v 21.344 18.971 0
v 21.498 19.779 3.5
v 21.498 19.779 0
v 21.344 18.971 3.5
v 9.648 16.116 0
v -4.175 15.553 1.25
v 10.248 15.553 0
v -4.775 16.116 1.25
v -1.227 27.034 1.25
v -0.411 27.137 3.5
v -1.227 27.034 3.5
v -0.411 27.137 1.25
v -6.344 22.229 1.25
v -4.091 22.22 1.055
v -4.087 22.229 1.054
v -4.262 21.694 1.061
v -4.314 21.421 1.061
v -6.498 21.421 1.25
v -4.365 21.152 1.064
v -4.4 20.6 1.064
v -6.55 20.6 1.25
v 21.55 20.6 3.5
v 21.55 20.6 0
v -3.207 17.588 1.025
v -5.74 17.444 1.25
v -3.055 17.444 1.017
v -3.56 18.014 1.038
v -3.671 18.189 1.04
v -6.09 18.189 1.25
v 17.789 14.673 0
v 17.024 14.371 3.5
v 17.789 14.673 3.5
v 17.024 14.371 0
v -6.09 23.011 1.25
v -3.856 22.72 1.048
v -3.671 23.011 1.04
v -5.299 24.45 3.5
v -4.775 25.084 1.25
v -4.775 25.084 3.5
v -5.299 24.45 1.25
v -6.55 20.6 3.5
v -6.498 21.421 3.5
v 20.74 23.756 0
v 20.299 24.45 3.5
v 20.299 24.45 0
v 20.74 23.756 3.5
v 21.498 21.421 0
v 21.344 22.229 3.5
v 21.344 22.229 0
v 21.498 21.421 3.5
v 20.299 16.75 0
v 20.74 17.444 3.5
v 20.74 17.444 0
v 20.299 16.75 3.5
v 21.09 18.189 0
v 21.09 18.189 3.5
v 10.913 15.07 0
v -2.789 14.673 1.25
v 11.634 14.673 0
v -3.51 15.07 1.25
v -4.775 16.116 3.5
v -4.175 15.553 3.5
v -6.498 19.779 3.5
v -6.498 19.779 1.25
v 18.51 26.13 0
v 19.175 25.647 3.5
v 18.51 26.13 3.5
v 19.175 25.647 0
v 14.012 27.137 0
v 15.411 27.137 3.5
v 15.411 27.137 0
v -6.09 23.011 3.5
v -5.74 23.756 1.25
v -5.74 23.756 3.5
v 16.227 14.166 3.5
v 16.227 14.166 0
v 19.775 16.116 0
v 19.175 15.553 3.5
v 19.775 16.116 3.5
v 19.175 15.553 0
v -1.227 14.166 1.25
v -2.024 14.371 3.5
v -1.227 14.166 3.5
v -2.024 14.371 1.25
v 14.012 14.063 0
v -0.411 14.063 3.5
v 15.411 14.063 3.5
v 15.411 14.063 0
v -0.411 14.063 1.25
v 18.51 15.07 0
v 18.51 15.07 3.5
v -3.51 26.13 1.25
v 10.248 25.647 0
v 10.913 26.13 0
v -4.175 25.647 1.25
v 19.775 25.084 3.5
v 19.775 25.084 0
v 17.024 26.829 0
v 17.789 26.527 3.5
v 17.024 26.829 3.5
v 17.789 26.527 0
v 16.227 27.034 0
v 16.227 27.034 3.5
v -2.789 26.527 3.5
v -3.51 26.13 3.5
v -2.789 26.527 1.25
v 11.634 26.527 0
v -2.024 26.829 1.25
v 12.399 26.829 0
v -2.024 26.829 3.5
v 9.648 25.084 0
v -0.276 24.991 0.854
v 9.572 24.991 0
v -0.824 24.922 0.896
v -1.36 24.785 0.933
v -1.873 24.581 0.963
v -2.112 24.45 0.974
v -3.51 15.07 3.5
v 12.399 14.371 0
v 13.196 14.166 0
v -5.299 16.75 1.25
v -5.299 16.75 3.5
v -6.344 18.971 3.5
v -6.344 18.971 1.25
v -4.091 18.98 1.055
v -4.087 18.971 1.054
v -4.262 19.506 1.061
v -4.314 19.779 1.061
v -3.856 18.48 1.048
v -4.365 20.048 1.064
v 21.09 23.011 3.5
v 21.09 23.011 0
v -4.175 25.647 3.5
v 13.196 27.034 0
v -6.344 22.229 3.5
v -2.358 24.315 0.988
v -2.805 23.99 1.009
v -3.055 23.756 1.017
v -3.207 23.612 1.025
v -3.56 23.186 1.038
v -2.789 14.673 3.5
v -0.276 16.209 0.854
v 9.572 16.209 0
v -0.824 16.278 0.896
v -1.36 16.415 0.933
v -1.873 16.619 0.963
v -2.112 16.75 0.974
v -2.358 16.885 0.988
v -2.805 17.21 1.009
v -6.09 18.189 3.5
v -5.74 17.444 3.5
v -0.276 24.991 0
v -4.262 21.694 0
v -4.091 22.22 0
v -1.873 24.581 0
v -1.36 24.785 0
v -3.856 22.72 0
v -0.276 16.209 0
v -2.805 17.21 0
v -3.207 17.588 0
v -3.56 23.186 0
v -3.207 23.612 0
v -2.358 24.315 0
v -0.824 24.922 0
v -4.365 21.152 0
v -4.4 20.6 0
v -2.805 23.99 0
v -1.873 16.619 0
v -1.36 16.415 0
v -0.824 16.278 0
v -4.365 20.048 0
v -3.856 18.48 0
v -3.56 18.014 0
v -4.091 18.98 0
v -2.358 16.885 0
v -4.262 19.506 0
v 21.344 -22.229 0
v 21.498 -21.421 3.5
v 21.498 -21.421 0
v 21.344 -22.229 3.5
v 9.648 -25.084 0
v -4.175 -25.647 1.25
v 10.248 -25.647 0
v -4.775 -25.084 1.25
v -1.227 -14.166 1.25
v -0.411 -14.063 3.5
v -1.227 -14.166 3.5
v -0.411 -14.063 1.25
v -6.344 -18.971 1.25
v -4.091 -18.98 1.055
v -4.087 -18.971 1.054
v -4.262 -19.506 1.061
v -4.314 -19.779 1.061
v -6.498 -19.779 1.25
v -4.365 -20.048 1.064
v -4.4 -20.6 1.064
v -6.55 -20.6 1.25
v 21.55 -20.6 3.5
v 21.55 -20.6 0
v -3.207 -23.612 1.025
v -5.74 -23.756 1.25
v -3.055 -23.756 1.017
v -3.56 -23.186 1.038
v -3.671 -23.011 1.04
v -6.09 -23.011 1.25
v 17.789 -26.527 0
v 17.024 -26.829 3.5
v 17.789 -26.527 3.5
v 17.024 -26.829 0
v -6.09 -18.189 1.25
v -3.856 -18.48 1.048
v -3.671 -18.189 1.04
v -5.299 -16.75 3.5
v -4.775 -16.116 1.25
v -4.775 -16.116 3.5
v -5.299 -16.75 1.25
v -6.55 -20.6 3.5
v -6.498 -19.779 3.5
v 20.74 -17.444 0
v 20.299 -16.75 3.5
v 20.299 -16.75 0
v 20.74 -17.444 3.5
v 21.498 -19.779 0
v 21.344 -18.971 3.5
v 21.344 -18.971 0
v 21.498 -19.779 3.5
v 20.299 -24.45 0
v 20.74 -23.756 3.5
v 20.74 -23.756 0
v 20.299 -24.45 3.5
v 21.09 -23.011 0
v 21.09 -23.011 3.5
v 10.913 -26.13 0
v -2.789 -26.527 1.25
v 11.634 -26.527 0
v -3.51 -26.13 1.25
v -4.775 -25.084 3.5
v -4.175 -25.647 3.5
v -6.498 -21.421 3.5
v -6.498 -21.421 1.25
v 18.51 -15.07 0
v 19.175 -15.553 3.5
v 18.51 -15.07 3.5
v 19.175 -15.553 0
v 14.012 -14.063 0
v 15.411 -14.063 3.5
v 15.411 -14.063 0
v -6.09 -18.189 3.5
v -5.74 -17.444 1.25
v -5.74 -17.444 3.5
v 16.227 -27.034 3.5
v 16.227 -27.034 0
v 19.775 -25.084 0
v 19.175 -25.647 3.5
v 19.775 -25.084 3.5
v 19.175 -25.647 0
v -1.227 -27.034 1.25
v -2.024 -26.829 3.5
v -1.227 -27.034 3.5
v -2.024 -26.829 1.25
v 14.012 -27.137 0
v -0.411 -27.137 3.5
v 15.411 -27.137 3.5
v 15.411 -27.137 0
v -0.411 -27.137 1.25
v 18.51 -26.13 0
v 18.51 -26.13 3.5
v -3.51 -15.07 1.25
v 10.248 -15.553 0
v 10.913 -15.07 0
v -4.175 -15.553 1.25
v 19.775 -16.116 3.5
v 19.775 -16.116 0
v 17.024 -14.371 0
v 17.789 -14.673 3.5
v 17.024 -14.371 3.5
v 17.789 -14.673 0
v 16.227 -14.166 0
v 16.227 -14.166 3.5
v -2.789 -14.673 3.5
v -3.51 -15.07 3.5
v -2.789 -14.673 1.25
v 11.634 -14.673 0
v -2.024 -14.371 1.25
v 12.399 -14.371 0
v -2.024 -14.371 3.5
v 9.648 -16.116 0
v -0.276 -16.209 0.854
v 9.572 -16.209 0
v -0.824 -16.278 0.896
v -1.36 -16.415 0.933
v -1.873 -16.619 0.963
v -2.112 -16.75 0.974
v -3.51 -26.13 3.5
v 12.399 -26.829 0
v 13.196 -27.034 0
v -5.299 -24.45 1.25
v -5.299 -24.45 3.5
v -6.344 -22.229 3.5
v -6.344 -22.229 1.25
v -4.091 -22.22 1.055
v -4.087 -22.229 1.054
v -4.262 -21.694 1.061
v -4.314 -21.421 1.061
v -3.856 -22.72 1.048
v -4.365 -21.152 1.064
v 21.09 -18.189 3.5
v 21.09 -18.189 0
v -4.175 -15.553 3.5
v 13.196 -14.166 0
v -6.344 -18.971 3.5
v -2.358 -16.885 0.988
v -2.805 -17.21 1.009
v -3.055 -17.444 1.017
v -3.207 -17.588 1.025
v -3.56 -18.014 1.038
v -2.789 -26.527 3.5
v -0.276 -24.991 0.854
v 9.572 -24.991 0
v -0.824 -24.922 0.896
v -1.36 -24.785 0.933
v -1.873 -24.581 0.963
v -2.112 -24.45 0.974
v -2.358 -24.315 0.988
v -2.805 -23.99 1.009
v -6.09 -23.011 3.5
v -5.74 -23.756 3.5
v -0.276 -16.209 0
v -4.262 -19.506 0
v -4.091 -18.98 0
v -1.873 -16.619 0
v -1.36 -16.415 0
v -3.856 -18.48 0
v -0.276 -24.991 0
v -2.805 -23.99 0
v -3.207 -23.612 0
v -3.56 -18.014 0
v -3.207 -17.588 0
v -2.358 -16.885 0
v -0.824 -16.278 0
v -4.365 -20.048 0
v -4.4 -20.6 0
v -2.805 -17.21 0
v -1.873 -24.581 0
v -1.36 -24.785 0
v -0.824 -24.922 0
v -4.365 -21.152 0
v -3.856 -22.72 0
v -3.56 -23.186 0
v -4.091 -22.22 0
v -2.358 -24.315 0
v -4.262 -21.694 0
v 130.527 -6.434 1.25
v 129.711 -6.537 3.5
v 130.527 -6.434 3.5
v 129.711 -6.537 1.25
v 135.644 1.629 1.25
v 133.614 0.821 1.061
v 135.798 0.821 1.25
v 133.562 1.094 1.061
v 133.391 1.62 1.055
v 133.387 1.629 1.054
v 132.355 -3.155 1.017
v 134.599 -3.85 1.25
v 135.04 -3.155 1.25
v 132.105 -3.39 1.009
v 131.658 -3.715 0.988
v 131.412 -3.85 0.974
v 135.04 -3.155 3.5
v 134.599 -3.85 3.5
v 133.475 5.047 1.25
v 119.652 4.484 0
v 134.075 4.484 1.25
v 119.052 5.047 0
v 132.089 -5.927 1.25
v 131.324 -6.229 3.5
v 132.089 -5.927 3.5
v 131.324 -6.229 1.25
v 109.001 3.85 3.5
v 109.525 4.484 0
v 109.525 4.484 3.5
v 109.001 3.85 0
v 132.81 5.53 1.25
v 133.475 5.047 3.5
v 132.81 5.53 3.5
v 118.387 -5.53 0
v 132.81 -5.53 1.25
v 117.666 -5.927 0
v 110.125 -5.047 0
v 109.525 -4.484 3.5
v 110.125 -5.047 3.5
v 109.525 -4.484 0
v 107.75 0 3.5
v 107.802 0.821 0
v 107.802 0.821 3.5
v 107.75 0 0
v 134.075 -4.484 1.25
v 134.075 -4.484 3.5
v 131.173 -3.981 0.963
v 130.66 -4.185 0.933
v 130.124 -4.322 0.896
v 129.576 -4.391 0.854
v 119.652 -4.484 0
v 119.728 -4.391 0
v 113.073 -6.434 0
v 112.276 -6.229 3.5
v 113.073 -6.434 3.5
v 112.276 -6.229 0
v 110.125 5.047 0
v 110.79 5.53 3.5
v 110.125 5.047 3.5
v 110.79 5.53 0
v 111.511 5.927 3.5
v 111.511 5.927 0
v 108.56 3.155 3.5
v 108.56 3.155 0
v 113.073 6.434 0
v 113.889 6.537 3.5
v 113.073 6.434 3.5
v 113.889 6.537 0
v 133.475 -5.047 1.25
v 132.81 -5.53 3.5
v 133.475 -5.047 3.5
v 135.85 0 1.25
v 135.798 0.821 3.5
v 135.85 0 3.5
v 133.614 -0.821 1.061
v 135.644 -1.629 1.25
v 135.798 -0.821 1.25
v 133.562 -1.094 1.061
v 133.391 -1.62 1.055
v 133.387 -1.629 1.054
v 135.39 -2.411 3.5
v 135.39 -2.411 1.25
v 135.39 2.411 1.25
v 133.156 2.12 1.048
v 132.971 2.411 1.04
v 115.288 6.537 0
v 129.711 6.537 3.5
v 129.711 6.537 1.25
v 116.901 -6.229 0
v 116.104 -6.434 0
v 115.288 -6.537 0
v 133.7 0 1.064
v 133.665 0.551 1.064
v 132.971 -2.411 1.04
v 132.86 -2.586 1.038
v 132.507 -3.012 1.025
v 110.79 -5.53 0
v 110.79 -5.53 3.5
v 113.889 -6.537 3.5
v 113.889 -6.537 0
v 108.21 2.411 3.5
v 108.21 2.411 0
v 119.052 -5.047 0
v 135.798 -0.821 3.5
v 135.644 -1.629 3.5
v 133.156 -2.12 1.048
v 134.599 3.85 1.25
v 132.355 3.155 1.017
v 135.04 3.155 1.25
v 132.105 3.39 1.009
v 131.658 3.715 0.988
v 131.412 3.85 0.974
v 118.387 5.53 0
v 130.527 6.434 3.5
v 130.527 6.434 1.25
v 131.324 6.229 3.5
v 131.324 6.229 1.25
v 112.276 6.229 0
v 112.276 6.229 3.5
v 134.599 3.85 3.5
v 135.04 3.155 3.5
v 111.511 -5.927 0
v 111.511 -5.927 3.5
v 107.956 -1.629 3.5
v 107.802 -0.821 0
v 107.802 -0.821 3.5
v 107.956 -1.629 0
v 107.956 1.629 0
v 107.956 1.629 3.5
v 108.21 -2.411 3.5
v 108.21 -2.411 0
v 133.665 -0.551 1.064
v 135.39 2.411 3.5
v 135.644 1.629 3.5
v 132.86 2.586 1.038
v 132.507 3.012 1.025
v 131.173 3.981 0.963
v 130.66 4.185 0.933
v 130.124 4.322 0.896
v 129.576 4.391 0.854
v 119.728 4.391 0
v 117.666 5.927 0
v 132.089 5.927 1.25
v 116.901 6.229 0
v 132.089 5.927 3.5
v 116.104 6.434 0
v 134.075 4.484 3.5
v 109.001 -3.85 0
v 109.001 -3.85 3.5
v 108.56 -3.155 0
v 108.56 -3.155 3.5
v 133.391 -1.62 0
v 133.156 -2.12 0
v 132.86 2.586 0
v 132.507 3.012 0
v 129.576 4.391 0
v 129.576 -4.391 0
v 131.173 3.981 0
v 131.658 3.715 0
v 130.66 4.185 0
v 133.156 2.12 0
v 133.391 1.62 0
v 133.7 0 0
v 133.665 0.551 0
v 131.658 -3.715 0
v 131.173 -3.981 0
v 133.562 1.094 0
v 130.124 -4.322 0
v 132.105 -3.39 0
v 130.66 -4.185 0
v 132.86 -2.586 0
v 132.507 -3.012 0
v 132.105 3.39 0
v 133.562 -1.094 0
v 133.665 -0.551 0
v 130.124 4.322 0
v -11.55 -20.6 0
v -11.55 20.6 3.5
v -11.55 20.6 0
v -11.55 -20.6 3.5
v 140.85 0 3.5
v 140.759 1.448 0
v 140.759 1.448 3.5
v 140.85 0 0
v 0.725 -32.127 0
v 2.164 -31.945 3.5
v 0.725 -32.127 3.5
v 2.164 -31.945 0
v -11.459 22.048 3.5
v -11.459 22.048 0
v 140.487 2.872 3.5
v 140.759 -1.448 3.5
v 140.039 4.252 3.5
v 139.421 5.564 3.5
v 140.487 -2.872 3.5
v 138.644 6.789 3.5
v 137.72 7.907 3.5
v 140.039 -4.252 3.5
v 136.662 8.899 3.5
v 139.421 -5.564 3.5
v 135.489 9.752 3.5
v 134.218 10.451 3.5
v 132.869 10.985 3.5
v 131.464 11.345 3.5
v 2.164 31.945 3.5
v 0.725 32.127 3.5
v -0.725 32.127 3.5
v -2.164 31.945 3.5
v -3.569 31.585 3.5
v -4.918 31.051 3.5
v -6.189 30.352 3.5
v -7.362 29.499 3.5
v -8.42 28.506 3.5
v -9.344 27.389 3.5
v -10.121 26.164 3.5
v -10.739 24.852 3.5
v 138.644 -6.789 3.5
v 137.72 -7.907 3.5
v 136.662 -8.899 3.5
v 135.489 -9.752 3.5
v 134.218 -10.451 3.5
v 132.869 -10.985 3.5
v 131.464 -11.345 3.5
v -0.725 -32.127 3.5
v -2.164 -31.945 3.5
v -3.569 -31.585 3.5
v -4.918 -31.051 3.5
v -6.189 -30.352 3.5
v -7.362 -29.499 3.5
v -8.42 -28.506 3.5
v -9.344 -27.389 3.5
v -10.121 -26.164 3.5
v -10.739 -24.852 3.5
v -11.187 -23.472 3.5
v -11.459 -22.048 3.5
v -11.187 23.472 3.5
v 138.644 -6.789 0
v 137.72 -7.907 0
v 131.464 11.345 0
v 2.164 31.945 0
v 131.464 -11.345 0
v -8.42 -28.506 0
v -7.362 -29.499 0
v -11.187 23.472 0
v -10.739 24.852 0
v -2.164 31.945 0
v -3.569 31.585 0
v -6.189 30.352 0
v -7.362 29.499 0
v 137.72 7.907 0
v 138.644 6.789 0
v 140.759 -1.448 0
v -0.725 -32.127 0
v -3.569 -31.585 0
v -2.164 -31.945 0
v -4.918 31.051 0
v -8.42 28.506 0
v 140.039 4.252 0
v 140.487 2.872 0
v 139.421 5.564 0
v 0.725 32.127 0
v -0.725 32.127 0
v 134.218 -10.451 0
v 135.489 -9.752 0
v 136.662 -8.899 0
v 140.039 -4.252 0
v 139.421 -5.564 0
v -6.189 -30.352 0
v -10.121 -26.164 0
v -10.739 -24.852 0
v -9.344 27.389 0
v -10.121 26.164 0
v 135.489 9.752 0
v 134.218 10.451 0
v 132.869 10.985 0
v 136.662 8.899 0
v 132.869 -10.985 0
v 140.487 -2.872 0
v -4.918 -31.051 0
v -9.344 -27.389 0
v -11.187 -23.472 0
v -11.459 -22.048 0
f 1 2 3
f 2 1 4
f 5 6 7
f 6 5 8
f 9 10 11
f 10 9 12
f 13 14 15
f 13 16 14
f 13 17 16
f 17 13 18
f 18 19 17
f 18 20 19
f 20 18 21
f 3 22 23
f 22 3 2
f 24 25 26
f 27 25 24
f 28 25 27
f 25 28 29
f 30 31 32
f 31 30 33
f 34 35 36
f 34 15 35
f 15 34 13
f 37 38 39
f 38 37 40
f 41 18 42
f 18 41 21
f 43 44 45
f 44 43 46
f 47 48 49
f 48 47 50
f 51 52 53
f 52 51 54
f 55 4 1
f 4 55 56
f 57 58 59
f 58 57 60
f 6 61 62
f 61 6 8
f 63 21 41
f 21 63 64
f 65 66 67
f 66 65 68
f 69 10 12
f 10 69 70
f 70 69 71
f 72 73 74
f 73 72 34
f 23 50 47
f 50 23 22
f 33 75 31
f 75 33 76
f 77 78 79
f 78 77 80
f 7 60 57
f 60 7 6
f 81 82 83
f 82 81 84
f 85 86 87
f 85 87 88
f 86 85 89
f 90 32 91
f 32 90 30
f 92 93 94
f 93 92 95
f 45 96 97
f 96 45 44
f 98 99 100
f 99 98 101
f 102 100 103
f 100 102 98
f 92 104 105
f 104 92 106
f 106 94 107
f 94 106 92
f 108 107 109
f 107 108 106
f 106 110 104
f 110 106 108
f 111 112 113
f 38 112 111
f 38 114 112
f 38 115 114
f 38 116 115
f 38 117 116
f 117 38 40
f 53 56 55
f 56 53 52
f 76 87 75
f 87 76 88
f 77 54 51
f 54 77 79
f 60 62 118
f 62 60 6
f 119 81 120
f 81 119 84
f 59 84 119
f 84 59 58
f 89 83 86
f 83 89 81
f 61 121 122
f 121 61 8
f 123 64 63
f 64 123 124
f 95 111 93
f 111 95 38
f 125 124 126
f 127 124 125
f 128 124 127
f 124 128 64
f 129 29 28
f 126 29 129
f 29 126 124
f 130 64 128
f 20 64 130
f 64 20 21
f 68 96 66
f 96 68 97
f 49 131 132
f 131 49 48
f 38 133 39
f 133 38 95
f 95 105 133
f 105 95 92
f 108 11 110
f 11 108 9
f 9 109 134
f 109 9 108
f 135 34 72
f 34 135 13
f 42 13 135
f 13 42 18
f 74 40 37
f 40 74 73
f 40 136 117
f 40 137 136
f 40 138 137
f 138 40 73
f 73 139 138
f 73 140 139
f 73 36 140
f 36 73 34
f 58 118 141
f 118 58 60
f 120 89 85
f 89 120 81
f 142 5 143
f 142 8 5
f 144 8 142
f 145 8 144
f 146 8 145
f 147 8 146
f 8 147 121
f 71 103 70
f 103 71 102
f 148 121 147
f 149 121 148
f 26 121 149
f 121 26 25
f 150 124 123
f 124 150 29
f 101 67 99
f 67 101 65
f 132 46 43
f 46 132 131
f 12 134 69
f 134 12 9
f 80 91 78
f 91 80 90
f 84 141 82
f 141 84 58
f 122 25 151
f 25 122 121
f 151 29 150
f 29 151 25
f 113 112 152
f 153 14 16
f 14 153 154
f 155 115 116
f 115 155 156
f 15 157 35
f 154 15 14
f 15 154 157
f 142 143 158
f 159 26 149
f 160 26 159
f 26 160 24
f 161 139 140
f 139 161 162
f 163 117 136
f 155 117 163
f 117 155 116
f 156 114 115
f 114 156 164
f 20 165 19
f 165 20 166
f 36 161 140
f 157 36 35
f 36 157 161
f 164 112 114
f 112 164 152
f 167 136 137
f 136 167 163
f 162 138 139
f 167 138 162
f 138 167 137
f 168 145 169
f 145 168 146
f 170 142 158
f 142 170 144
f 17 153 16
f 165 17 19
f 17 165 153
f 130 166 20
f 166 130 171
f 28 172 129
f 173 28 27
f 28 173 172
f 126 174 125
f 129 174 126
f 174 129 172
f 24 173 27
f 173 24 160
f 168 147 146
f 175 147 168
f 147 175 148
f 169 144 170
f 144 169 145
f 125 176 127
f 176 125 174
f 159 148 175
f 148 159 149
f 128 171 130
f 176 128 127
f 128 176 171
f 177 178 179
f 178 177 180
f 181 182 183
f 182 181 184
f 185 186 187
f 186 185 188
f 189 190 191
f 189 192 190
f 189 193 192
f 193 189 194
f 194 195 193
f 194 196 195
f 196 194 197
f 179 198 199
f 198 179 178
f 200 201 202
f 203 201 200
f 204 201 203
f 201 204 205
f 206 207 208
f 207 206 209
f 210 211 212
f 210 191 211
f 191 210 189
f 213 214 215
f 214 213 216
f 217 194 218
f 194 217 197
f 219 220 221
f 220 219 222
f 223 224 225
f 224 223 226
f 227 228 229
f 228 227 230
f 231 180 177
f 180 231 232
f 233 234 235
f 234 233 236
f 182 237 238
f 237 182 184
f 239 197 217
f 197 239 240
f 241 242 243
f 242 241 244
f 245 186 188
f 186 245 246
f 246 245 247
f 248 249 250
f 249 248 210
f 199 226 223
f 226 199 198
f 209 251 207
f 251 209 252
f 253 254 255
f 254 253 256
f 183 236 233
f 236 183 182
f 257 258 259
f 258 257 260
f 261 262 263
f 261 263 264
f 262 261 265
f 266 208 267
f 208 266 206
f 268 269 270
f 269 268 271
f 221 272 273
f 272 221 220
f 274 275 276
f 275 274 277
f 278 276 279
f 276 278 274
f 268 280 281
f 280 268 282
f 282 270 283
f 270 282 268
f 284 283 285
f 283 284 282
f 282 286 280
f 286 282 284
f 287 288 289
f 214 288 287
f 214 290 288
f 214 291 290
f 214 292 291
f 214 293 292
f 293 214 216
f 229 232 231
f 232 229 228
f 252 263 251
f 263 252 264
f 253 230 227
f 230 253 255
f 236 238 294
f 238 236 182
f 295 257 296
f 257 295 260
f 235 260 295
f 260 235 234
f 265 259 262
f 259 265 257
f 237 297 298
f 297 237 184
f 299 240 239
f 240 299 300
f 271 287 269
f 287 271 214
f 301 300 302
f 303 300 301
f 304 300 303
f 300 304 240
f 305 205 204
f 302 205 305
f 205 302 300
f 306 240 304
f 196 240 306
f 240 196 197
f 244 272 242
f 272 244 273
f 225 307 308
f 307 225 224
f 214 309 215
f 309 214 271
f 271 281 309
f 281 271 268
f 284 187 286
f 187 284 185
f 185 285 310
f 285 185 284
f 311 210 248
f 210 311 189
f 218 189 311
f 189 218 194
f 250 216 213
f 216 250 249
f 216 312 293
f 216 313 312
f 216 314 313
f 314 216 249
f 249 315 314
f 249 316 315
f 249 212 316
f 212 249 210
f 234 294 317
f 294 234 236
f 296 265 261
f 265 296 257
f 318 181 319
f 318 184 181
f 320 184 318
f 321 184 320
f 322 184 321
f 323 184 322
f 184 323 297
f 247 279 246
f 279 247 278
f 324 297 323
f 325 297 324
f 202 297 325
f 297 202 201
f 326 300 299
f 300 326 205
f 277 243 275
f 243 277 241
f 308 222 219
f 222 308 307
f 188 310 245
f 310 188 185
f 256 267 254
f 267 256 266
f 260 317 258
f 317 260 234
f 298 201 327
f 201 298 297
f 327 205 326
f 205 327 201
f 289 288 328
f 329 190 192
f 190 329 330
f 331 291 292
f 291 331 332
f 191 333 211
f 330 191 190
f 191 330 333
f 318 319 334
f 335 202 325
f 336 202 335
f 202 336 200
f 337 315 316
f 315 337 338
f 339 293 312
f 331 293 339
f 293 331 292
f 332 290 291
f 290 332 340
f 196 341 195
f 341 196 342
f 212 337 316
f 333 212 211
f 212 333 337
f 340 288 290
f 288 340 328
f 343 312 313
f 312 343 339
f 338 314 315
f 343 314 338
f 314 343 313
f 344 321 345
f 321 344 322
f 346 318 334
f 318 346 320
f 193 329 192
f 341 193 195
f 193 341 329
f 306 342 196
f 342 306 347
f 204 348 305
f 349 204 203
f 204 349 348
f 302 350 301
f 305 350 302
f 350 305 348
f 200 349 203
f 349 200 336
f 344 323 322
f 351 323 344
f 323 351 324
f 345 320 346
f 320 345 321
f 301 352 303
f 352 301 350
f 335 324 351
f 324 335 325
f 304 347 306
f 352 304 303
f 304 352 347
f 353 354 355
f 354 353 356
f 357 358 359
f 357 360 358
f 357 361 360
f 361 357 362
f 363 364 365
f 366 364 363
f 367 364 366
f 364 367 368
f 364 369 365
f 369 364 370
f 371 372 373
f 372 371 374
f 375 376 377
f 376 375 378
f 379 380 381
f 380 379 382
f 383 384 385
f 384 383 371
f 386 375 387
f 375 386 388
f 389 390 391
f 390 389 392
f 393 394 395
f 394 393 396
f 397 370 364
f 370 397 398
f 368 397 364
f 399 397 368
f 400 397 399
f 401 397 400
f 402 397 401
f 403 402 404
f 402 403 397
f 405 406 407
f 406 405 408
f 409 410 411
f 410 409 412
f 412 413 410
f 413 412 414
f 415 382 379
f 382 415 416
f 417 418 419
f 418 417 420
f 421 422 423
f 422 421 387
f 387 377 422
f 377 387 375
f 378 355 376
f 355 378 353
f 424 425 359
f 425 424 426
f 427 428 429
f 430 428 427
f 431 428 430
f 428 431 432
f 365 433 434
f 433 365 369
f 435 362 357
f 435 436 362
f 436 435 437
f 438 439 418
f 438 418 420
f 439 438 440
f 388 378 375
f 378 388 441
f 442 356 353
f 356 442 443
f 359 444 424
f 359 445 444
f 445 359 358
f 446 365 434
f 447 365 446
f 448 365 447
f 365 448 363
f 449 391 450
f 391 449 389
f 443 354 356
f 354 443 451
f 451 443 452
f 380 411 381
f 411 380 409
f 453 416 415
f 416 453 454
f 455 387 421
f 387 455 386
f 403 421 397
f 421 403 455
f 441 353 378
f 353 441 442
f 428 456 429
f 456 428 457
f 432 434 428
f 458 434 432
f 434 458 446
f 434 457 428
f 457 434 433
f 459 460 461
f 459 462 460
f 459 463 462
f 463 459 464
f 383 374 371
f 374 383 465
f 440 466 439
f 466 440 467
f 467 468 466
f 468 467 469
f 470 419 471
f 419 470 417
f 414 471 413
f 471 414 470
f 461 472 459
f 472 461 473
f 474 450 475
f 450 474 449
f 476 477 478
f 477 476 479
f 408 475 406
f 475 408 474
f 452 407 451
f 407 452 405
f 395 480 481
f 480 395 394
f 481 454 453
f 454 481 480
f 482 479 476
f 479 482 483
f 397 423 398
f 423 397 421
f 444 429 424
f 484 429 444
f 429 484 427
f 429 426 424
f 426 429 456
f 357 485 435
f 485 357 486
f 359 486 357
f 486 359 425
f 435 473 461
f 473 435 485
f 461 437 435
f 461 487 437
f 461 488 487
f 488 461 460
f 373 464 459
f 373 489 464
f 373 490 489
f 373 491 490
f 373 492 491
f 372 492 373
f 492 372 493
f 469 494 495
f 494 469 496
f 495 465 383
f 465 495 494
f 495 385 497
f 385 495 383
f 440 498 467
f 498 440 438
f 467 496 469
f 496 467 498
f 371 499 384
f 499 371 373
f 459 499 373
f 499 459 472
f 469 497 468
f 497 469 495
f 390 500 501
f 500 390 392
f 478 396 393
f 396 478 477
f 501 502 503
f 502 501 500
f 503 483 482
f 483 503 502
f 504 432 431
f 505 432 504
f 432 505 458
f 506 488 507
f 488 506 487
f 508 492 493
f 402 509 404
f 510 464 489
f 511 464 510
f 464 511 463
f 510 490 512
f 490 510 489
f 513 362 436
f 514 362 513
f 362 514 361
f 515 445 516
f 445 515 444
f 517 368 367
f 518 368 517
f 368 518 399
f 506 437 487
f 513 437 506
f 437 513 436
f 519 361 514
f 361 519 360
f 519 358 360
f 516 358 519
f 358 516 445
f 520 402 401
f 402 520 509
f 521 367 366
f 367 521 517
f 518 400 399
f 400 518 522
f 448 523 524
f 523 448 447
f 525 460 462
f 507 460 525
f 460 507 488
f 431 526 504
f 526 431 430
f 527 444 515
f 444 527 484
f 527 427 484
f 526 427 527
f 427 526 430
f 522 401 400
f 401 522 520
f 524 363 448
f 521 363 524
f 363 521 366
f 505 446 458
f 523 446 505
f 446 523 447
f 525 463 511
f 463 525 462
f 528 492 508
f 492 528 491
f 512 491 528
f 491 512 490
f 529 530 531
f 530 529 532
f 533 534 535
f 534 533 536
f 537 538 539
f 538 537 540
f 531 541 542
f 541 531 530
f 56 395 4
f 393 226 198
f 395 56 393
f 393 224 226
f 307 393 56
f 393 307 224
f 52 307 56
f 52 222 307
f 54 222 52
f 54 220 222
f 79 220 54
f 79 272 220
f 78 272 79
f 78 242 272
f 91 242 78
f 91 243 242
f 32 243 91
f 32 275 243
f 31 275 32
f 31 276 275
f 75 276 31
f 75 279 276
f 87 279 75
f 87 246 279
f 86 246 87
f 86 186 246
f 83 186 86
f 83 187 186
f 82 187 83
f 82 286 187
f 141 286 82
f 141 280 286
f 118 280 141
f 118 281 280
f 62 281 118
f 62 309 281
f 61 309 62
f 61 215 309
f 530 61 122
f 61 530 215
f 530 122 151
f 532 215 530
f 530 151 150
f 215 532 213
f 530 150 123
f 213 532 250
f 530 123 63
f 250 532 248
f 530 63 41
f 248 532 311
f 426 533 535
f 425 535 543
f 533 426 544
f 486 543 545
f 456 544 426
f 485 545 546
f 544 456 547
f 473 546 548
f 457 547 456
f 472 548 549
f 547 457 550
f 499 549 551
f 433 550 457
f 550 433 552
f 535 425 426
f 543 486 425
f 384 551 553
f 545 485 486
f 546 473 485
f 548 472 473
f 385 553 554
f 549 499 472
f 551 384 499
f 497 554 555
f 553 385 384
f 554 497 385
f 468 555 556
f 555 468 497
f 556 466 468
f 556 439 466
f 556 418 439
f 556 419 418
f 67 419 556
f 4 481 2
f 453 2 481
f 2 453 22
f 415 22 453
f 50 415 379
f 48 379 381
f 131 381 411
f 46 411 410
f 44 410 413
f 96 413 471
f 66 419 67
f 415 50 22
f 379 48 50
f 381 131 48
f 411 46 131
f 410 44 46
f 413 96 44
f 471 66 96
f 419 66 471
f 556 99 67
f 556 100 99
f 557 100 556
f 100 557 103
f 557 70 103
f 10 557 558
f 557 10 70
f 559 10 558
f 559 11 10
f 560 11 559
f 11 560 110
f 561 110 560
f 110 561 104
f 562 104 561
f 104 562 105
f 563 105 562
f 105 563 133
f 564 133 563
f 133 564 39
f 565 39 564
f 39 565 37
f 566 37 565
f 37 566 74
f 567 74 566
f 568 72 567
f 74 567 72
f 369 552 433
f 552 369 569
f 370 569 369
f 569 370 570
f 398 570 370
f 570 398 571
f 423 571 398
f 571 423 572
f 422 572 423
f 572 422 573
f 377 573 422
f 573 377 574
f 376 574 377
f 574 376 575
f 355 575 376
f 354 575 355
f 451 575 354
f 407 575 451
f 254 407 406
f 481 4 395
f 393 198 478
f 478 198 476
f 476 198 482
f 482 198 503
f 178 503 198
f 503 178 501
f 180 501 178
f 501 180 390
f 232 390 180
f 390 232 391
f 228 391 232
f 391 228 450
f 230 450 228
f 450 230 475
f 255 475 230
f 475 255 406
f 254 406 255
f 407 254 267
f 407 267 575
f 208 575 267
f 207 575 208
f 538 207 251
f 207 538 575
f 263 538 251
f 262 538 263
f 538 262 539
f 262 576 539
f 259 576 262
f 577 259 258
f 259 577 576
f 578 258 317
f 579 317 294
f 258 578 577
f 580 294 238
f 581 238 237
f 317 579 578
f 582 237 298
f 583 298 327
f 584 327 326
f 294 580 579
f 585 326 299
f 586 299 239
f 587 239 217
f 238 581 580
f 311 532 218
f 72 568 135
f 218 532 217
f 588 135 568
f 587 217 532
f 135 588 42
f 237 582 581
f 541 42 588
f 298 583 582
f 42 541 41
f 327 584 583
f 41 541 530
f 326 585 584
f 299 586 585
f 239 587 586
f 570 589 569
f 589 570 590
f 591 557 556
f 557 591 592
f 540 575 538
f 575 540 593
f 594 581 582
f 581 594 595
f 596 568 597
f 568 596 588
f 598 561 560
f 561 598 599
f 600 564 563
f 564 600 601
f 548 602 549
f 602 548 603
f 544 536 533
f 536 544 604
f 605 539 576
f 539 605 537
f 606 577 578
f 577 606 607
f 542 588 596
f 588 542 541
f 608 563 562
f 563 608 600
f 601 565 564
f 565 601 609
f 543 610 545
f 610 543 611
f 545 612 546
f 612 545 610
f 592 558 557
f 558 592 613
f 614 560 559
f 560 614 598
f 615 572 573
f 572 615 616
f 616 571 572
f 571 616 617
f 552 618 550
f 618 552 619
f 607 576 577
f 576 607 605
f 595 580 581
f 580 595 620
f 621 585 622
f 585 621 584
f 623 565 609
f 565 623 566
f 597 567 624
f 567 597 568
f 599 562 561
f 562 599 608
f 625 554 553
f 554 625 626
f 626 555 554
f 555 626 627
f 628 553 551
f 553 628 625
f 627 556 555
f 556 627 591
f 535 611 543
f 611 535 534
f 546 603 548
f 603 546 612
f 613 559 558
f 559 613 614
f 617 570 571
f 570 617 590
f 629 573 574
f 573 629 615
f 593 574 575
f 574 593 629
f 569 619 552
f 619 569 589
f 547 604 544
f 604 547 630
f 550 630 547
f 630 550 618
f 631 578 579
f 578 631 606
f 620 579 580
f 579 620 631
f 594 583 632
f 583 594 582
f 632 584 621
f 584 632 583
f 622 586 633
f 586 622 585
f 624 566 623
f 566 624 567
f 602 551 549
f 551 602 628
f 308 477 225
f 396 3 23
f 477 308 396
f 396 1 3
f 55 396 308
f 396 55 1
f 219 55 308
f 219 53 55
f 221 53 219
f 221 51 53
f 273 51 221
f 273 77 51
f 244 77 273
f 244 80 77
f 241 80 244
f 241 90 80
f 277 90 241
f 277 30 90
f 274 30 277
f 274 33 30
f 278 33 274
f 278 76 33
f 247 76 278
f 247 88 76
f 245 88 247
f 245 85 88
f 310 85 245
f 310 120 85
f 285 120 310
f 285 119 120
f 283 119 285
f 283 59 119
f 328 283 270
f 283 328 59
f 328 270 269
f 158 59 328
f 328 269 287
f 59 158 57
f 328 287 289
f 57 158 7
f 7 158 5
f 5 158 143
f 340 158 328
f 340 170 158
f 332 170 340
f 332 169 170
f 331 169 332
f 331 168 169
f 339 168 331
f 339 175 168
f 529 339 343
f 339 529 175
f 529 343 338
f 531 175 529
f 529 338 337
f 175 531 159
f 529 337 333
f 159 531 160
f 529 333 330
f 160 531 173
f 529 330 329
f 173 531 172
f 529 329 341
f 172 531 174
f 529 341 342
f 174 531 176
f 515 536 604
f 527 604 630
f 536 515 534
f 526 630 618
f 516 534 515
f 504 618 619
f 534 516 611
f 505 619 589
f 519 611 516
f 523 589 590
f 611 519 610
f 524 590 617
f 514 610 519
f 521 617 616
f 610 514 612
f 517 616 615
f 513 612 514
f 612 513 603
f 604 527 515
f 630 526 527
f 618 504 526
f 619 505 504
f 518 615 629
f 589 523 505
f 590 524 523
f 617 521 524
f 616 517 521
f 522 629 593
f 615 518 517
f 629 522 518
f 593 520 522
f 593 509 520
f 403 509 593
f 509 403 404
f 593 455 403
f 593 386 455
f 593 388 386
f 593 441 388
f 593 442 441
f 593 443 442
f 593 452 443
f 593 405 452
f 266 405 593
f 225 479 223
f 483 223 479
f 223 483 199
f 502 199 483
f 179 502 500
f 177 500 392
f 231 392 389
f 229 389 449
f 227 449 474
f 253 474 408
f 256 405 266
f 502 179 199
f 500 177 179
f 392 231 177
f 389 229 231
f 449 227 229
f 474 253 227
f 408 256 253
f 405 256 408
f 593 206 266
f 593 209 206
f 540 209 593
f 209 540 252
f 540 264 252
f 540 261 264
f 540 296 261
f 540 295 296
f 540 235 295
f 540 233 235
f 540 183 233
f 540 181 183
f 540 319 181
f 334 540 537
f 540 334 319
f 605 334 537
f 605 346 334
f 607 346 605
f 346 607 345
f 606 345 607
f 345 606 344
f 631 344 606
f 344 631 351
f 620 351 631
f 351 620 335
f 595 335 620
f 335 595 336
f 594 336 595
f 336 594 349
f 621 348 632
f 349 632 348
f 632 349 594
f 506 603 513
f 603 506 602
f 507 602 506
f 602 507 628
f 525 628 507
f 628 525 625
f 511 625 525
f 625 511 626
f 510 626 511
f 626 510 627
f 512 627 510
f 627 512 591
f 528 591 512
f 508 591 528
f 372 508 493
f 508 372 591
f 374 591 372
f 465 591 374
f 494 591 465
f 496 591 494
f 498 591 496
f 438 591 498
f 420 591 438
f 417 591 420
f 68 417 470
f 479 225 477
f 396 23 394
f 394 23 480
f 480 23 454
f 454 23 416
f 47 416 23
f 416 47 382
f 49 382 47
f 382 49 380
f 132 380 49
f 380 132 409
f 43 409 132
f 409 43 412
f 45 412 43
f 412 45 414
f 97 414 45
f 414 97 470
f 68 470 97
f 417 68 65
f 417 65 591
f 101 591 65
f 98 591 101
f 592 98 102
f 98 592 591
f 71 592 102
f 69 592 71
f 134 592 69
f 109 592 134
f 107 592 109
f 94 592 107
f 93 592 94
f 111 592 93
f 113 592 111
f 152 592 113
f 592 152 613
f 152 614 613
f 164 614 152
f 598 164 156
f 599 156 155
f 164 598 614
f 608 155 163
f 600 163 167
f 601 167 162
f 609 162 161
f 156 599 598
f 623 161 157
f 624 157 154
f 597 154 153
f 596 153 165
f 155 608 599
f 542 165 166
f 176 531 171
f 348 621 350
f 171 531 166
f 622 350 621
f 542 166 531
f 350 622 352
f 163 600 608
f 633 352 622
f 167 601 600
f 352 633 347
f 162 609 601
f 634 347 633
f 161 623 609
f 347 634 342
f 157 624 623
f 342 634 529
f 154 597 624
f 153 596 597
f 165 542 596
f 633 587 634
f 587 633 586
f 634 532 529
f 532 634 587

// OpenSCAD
THICKNESS=3.5; // mm
WALLTHICK=5; // thickness of walls around holes
SHAFTWIDTH=8.8;
SHAFTHEIGHT=1.3; // exposed part of shaft when screwed down
PLUSSPACING=41.2; // spacing between screws on two-post (+) side
HANDLEWIDTH=13.1;
SLOTLENGTH=15;
TERMDISTANCE=129.3;
ABIT=0.1; // for differences, which should be a bit larger
$fn=50;

difference() {
  hull() {
    translate([0,PLUSSPACING/2,0]) cylinder(r=HANDLEWIDTH/2+WALLTHICK,h=THICKNESS);
    translate([0,-1*PLUSSPACING/2,0]) cylinder(r=HANDLEWIDTH/2+WALLTHICK,h=THICKNESS);
    translate([TERMDISTANCE,0,0]) cylinder(r=HANDLEWIDTH/2+WALLTHICK,h=THICKNESS);
  }
  translate([0,PLUSSPACING/2,0]) screwhole(1);
  translate([0,-1*PLUSSPACING/2,0]) screwhole(1);
  translate([TERMDISTANCE,0,0]) screwhole(-1);
}

module screwhole(direction) { // direction is 1 or -1
  translate([0,0,-0.5*ABIT]) { // move subtracted part down so it's outside
    hull() { // handle path
      translate([SLOTLENGTH*direction,0,0]) cylinder(r=HANDLEWIDTH/2,h=THICKNESS+ABIT); // handle hole for entry
      translate([0,0,SHAFTHEIGHT]) cylinder(r=HANDLEWIDTH/2,h=THICKNESS); // handle hole when screwed down
    }
    hull() { // shaft path
      translate([SLOTLENGTH*direction,0,0]) cylinder(r=SHAFTWIDTH/2,h=THICKNESS+ABIT);
      translate([0,0,0]) cylinder(r=SHAFTWIDTH/2,h=THICKNESS+ABIT);
    }
  }
}
